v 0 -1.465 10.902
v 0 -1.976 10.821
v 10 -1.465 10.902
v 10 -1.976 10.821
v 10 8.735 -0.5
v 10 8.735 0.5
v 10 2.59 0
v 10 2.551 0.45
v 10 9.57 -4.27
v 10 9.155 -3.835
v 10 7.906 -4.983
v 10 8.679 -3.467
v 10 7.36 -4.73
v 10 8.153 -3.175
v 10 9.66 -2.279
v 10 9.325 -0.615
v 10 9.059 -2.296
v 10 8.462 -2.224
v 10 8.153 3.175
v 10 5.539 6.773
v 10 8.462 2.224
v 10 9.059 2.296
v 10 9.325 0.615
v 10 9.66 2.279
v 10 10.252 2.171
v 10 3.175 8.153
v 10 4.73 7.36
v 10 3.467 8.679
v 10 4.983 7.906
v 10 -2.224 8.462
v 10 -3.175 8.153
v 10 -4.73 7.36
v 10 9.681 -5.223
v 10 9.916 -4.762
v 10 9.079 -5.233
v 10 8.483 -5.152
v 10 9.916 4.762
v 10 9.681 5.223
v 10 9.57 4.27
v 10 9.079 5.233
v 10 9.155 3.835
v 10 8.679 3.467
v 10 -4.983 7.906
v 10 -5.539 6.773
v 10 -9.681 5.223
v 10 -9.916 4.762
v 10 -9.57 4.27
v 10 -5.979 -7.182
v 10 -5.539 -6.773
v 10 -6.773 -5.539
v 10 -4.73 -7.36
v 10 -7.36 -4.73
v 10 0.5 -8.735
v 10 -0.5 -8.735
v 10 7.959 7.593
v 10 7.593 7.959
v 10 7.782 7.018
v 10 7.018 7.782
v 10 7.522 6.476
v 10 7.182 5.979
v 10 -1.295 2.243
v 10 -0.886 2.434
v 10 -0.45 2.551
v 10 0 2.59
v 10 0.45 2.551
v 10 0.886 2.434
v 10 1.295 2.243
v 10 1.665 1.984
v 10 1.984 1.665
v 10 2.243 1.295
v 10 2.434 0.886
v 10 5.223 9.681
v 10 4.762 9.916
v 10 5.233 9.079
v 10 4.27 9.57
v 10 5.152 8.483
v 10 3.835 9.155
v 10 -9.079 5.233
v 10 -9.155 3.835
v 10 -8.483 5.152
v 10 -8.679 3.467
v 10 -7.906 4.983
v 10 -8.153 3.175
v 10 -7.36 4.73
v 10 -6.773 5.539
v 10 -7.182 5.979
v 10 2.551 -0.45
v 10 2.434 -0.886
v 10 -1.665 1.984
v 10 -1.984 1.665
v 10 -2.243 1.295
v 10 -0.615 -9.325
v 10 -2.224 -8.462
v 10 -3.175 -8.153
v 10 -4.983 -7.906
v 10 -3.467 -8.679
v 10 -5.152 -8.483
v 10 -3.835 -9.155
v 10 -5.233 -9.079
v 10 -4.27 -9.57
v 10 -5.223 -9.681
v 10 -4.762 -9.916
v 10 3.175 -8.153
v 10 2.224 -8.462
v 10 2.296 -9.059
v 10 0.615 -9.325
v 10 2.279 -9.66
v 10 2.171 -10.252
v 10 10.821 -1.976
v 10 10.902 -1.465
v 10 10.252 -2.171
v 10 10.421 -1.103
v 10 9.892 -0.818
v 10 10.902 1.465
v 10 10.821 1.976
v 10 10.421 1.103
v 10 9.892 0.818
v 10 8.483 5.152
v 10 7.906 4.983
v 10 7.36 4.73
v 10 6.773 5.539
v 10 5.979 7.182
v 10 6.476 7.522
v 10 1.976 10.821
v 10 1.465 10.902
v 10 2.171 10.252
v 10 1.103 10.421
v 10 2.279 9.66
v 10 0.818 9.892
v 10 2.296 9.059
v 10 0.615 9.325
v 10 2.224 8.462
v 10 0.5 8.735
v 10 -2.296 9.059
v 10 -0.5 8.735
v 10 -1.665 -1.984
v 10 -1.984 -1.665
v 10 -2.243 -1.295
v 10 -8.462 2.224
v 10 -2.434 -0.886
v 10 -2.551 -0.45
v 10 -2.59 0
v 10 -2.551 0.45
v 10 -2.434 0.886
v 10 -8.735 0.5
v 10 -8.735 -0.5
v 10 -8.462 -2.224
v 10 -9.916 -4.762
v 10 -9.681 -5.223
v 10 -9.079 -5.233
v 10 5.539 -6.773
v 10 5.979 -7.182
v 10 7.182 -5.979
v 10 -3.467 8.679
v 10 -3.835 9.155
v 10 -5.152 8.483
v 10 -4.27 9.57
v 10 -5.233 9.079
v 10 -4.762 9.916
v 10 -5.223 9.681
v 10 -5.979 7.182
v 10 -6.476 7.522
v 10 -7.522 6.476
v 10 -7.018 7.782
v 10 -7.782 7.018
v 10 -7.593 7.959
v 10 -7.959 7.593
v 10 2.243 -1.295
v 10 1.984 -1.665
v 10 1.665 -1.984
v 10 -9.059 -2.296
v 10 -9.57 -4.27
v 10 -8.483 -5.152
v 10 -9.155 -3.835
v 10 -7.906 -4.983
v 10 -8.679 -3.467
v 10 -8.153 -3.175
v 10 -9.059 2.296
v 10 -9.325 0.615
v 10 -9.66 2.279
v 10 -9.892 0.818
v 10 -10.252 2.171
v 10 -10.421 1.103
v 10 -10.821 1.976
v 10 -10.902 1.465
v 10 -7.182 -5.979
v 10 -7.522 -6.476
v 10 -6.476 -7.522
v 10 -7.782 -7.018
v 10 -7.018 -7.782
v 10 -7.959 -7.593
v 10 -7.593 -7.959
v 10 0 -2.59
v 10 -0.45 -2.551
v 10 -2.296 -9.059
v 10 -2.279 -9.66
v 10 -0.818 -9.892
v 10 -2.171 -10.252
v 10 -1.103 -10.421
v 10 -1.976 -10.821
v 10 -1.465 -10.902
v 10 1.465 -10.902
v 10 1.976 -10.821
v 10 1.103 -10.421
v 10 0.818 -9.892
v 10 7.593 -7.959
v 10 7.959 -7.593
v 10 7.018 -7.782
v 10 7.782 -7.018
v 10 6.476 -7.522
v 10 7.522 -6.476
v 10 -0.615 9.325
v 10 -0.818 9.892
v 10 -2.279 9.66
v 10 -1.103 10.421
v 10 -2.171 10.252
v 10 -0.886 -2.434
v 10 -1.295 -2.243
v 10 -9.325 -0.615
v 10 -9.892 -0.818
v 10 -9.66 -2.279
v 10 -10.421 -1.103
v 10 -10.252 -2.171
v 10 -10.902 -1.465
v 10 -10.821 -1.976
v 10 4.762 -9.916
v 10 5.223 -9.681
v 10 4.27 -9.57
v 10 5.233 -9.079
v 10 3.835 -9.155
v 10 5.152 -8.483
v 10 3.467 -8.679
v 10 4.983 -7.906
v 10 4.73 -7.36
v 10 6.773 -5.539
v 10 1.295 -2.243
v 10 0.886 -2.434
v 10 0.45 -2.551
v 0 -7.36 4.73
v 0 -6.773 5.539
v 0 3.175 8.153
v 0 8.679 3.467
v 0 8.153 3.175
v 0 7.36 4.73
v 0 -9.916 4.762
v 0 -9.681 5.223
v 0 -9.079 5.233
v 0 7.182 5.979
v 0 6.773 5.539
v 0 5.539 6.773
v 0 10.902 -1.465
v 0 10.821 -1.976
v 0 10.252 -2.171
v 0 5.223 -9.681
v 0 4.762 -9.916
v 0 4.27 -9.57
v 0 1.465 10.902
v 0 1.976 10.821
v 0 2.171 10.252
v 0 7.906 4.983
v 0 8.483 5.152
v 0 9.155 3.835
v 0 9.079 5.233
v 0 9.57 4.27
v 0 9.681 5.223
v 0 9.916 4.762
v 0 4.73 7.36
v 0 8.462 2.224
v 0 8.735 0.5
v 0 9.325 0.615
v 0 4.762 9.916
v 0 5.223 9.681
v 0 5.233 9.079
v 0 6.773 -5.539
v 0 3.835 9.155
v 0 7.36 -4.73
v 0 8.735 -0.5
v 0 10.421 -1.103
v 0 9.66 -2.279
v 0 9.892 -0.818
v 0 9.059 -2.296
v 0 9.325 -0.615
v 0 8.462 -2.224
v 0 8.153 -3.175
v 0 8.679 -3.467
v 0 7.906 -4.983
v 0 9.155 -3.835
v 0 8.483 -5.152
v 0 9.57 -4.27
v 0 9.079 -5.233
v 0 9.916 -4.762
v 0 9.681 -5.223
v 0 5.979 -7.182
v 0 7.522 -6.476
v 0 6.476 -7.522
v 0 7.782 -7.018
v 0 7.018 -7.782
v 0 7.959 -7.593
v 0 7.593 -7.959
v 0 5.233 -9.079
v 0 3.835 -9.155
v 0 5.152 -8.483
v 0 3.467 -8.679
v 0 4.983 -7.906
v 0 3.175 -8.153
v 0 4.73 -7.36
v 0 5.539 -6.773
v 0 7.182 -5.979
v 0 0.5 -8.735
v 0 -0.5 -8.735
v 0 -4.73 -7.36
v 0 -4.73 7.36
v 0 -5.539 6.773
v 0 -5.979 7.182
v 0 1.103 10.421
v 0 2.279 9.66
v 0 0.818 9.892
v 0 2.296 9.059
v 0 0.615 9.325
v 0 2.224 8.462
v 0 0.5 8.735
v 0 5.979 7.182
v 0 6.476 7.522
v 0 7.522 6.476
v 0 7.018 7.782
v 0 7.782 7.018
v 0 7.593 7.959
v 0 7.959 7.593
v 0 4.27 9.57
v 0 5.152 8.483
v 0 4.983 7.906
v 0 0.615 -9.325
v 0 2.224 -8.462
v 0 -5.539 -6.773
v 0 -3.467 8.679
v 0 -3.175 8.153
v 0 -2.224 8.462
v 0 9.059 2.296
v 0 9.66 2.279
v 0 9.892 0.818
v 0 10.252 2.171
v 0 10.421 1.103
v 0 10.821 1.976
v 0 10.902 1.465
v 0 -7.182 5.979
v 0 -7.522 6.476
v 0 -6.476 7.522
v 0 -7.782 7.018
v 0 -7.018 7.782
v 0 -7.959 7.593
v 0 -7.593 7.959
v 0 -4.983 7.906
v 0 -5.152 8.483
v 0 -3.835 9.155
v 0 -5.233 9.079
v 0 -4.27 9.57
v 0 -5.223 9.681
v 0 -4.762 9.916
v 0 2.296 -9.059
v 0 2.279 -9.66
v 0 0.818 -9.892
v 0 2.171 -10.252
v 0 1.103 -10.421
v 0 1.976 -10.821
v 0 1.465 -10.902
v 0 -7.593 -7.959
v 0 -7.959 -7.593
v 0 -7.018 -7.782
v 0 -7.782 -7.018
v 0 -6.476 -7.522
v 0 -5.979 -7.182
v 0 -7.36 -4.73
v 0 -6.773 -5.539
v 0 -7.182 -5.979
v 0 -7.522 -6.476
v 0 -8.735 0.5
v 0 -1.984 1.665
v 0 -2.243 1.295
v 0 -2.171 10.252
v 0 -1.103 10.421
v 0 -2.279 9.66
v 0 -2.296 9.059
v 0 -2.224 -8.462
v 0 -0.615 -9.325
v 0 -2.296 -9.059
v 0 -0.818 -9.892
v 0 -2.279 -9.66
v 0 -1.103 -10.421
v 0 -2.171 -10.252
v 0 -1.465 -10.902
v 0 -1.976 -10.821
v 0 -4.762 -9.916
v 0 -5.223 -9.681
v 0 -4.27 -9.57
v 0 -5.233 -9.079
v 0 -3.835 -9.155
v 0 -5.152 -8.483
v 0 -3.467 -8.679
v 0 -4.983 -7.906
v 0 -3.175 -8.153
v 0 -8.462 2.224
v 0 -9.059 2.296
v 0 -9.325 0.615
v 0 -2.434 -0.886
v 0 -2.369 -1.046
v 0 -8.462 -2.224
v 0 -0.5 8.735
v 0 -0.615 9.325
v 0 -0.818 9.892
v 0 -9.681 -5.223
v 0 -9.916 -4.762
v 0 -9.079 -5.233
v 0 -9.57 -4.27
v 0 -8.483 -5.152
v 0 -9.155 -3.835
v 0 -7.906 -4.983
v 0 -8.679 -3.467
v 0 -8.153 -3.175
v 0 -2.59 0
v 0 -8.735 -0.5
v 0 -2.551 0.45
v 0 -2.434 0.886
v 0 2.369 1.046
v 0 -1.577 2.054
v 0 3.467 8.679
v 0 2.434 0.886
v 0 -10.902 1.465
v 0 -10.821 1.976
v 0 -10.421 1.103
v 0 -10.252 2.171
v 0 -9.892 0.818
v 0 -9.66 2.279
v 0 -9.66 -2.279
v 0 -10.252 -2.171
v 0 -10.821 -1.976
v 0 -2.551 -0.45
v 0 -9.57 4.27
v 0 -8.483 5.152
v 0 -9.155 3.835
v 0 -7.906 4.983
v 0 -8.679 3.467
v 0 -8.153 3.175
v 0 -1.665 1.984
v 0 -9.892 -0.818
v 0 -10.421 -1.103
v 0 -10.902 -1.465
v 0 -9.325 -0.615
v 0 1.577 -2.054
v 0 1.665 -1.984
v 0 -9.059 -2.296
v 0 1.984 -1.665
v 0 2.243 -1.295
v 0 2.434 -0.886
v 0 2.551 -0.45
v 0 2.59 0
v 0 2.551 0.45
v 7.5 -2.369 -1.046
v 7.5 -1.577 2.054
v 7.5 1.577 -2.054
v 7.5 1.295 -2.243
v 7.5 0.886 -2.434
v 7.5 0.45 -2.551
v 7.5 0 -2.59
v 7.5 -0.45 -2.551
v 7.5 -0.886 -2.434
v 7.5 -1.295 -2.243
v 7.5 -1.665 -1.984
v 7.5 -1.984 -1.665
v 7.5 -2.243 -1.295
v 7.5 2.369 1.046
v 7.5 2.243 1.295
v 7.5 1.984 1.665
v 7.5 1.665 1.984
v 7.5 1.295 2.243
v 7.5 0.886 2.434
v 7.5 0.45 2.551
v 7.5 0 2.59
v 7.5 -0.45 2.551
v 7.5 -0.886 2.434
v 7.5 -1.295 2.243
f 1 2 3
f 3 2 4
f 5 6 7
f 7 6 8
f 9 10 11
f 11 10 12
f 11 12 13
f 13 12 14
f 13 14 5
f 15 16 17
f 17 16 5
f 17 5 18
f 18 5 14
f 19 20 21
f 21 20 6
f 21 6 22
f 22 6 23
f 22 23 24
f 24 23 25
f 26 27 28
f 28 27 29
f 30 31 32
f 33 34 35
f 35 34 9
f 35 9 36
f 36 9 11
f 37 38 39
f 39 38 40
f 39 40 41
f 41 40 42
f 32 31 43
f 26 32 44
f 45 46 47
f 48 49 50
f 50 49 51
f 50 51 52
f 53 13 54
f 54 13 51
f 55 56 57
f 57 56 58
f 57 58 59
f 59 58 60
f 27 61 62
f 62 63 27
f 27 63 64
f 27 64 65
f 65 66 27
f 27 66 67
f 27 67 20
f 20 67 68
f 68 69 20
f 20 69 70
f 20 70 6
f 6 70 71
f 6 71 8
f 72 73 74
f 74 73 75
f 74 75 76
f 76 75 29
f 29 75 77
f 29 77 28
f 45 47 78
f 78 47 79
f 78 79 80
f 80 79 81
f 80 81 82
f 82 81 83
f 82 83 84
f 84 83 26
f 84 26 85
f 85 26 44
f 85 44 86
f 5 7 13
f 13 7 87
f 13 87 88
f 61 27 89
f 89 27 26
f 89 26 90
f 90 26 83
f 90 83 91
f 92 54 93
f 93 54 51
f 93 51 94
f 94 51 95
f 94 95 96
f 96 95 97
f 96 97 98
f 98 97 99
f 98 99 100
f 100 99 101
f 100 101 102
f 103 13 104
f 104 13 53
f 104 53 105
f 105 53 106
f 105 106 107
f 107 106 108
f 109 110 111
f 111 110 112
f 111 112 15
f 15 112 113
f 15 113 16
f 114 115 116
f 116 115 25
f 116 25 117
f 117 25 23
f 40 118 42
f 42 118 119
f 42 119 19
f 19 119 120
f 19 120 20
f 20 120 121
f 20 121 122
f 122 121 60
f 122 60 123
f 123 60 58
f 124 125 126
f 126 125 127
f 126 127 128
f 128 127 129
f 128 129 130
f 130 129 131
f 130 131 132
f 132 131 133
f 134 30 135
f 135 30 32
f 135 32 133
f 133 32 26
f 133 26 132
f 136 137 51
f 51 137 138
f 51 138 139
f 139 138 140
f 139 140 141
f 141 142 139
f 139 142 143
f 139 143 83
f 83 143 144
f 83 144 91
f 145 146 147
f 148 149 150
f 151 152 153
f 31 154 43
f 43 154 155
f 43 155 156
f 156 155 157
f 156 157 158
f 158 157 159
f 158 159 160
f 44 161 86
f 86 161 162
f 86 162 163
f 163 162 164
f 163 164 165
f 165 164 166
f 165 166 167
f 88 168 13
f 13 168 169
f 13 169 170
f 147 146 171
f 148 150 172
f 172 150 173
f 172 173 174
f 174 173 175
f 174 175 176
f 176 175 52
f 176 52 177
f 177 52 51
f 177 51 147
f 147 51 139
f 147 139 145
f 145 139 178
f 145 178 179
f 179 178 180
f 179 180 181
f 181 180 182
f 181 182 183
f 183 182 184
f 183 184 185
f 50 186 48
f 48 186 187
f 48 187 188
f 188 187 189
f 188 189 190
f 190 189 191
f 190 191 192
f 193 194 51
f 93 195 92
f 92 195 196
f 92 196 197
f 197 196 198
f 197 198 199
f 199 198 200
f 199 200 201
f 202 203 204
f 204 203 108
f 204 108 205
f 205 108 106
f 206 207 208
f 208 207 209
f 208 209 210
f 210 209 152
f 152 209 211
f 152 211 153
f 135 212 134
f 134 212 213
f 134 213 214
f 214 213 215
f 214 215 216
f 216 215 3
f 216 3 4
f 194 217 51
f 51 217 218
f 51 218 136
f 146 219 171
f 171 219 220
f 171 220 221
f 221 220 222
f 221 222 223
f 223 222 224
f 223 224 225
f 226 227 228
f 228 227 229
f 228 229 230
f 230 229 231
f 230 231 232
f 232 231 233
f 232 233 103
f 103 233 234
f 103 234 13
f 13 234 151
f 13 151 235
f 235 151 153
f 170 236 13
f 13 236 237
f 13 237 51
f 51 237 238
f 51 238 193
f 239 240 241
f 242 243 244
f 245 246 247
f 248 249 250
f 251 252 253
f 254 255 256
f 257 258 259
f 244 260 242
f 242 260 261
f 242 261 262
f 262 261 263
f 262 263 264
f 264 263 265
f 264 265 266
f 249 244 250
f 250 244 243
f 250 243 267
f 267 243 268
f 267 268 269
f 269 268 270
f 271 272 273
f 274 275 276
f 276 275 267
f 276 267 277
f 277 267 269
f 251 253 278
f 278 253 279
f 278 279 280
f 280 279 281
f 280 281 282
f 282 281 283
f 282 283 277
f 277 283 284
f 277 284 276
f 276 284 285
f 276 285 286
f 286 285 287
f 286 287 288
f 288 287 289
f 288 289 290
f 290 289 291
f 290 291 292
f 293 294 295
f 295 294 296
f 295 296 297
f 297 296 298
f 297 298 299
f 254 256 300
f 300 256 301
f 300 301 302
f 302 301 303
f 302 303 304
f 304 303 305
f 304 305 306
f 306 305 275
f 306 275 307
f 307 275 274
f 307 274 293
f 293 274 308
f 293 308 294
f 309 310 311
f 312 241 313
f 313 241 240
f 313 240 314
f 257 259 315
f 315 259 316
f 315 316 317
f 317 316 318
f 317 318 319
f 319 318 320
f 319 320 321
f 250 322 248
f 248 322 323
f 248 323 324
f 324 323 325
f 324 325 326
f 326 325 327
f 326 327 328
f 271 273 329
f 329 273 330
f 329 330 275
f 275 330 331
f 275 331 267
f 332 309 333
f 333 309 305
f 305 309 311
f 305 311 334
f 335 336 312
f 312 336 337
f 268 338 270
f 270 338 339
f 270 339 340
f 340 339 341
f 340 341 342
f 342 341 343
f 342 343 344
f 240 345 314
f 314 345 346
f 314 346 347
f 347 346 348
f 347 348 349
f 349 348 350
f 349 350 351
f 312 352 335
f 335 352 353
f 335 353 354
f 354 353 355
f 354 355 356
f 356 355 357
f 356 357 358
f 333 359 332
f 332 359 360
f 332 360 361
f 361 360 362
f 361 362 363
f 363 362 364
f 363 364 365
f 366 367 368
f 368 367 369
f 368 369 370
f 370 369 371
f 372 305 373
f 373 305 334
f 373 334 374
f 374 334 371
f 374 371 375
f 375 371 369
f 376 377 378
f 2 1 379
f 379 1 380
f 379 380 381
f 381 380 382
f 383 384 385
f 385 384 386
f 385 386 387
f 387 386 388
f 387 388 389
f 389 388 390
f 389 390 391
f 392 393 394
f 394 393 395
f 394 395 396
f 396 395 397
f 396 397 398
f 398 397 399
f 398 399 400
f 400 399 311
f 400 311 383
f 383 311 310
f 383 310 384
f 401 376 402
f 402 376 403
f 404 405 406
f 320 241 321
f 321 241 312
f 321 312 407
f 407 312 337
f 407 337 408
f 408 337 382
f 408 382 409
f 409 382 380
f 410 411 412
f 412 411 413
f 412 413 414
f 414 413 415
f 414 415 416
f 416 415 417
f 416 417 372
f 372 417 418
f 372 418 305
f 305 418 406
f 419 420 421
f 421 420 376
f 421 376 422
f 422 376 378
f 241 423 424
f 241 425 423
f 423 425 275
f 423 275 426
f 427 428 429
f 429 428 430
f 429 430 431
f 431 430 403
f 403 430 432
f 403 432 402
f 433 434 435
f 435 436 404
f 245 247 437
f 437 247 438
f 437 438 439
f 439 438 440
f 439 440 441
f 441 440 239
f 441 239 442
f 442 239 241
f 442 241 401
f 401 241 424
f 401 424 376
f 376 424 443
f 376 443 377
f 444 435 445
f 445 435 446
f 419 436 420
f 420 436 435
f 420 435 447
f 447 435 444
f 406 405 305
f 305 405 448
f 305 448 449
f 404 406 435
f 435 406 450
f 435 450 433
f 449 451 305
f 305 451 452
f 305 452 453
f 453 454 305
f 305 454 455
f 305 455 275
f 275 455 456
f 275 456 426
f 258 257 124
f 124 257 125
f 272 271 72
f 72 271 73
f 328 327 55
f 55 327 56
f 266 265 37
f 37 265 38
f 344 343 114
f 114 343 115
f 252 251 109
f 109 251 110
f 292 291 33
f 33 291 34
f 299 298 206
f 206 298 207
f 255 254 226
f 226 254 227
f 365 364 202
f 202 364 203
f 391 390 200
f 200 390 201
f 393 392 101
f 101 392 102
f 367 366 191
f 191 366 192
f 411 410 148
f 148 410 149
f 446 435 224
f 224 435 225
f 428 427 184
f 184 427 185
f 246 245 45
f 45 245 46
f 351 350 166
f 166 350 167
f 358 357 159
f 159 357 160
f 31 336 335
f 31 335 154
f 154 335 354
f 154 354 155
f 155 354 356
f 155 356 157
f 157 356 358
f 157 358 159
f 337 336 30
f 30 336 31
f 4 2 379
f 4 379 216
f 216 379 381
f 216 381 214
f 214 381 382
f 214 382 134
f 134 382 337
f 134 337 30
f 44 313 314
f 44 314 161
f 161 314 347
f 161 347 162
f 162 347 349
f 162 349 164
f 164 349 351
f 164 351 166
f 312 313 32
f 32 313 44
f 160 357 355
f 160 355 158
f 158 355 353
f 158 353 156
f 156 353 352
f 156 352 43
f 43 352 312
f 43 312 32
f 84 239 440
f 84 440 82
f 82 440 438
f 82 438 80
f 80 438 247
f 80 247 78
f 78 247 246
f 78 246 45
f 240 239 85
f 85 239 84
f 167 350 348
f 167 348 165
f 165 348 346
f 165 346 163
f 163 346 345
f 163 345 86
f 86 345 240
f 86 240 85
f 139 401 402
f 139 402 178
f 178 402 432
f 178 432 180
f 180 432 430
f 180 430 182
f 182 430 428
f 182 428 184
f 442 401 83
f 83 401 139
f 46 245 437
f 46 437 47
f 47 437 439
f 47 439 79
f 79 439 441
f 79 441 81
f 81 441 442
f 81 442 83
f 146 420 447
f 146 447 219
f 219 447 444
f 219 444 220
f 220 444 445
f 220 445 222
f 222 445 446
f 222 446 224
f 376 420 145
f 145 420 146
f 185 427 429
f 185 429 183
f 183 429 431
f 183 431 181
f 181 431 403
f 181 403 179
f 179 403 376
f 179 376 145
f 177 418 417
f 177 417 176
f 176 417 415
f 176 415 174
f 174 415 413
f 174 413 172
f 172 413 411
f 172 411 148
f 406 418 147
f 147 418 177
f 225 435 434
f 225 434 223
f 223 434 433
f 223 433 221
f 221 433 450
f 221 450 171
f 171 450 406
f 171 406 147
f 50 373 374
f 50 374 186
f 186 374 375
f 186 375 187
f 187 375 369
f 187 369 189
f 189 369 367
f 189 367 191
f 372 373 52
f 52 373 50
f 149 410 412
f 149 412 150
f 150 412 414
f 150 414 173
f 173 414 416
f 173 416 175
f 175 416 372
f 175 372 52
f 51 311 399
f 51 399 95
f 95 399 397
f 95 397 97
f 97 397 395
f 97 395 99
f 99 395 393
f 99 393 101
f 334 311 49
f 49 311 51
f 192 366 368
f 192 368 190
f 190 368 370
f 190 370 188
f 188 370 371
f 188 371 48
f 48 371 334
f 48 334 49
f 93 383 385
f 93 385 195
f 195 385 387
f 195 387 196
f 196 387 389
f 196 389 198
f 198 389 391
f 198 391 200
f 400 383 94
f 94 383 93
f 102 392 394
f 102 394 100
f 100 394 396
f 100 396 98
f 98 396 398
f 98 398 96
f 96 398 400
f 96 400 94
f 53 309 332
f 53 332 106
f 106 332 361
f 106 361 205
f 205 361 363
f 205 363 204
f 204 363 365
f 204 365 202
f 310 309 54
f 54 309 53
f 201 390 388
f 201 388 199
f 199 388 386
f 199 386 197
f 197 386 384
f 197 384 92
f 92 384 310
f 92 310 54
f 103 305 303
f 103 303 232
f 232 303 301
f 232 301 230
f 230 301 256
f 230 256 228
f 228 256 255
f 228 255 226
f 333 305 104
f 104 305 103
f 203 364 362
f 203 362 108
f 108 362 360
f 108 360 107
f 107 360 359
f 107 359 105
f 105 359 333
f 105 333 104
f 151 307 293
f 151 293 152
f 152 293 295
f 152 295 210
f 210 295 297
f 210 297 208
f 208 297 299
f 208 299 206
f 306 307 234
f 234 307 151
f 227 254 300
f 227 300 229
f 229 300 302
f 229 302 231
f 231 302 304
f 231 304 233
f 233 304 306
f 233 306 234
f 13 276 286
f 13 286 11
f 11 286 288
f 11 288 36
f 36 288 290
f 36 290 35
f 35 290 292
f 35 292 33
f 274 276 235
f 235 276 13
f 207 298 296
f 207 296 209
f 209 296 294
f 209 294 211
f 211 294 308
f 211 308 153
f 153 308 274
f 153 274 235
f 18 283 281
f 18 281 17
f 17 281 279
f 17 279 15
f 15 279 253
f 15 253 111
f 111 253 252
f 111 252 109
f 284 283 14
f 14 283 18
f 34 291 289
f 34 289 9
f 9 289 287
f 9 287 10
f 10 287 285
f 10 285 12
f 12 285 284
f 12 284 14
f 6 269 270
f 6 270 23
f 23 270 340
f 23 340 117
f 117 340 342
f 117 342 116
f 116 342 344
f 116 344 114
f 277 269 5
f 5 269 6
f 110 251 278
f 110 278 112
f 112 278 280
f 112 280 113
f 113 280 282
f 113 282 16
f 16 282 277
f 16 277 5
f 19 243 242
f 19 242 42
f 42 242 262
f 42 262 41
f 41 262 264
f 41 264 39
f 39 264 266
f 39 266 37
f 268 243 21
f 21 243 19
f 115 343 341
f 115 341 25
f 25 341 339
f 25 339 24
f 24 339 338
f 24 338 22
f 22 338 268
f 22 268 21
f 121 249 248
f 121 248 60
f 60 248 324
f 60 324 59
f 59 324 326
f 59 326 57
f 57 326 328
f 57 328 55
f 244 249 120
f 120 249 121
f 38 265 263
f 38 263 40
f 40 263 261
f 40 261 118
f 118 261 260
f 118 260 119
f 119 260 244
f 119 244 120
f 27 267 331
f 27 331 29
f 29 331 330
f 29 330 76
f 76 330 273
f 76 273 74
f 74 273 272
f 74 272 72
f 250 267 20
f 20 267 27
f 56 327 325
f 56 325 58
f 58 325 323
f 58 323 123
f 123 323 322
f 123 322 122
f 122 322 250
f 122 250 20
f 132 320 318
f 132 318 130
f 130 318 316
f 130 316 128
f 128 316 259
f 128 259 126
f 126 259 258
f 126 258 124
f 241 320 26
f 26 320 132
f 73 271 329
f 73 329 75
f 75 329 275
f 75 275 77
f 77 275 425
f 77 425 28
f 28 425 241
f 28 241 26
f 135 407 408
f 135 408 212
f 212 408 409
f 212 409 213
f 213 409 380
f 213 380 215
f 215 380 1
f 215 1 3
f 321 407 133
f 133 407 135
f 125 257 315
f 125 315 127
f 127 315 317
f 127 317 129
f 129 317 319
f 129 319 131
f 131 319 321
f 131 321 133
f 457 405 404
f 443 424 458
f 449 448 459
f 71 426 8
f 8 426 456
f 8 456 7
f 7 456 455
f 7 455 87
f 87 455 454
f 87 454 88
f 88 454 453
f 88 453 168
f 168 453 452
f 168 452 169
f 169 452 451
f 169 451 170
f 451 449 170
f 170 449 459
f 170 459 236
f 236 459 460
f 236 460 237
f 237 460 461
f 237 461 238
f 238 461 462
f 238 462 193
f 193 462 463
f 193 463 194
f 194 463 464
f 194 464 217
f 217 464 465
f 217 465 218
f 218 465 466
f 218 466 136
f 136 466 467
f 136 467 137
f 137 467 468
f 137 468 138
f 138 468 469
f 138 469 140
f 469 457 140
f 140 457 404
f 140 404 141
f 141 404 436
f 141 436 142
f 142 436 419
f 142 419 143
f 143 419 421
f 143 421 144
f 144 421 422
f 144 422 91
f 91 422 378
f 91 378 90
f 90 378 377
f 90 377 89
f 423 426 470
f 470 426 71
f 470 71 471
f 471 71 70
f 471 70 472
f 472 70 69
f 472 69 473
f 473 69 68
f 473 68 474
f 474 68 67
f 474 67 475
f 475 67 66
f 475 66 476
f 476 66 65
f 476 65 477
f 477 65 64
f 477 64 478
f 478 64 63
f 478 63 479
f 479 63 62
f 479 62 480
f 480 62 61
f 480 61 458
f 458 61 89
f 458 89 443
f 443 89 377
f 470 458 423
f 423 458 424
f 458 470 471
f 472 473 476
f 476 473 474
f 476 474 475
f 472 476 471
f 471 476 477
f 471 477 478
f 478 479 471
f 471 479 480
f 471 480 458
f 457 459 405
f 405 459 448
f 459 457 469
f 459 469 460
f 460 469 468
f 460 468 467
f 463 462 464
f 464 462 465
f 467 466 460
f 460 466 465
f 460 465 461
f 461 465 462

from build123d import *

# Parameters (mm, degrees)
SKETCH1_W           = 10
SKETCH1_H           = 11
CUT_EXTRUDE1_DEPTH  = 11
CUT_EXTRUDE2_DEPTH  = 11
CUT_EXTRUDE3_DEPTH  = 11
CUT_EXTRUDE4_DEPTH  = 11
CUT_EXTRUDE5_DEPTH  = 11
CUT_EXTRUDE6_DEPTH  = 11
CUT_EXTRUDE7_DEPTH  = 11
CUT_EXTRUDE8_DEPTH  = 11
CUT_EXTRUDE9_DEPTH  = 11
CUT_EXTRUDE10_DEPTH = 11
CUT_EXTRUDE11_DEPTH = 11
CUT_EXTRUDE12_DEPTH = 11
CUT_EXTRUDE13_DEPTH = 11
CUT_EXTRUDE14_DEPTH = 11
CUT_EXTRUDE15_DEPTH = 11
CUT_EXTRUDE16_DEPTH = 11
CUT_EXTRUDE17_DEPTH = 11
CUT_EXTRUDE18_DEPTH = 11
CUT_EXTRUDE19_DEPTH = 11
CUT_EXTRUDE20_DEPTH = 11
HOLE1_D             = 5.18
HOLE1_DEPTH         = 10
BOSS_EXTRUDE1_DEPTH = 7.5
BOSS_EXTRUDE2_DEPTH = 7.5


with BuildPart() as part:
    # Sketch1 → Revolve1 (revolve)
    with BuildSketch(Plane(origin=(0, 0, 0), x_dir=(-1, 0, 0), z_dir=(0, 0, -1))):
        with Locations((-5, 5.5)):
            Rectangle(SKETCH1_W, SKETCH1_H)
    revolve(axis=Axis((10, 0, 0), (-1, 0, 0)))

    # Sketch2 → Cut-Extrude1 (cut, through all)
    with BuildSketch(Plane.ZY):
        with BuildLine():
            ThreePointArc((10.821127601, -1.975651141), (9.66022001, -2.278635697), (8.461683425, -2.223716399))
            ThreePointArc((8.461683425, -2.223716399), (8.320793461, -2.703589684), (8.152713396, -3.174628369))
            ThreePointArc((8.152713396, -3.174628369), (9.154630615, -3.834679853), (9.915734733, -4.762163869))
            ThreePointArc((9.915734733, -4.762163869), (10.461621679, -3.399186938), (10.821127601, -1.975651141))
        make_face()
    extrude(amount=-CUT_EXTRUDE1_DEPTH, mode=Mode.SUBTRACT)

    # Sketch3 → Cut-Extrude2 (cut, through all)
    with BuildSketch(Plane.ZY):
        with BuildLine():
            ThreePointArc((9.680994141, -5.222868219), (8.483278035, -5.15228348), (7.360373002, -4.729683951))
            ThreePointArc((7.360373002, -4.729683951), (7.078089684, -5.142533172), (6.772677084, -5.538577987))
            ThreePointArc((6.772677084, -5.538577987), (7.521589858, -6.4759337), (7.958834566, -7.593217523))
            ThreePointArc((7.958834566, -7.593217523), (8.899186938, -6.465637775), (9.680994141, -5.222868219))
        make_face()
    extrude(amount=-CUT_EXTRUDE2_DEPTH, mode=Mode.SUBTRACT)

    # Sketch4 → Cut-Extrude3 (cut, through all)
    with BuildSketch(Plane.ZY):
        with BuildLine():
            ThreePointArc((5.222868219, -9.680994141), (6.465637775, -8.899186938), (7.593217523, -7.958834566))
            ThreePointArc((7.593217523, -7.958834566), (6.4759337, -7.521589858), (5.538577987, -6.772677084))
            ThreePointArc((5.538577987, -6.772677084), (5.142533172, -7.078089684), (4.729683951, -7.360373002))
            ThreePointArc((4.729683951, -7.360373002), (5.15228348, -8.483278035), (5.222868219, -9.680994141))
        make_face()
    extrude(amount=-CUT_EXTRUDE3_DEPTH, mode=Mode.SUBTRACT)

    # Sketch5 → Cut-Extrude4 (cut, through all)
    with BuildSketch(Plane.ZY):
        with BuildLine():
            ThreePointArc((1.975651141, -10.821127601), (3.399186938, -10.461621679), (4.762163869, -9.915734733))
            ThreePointArc((4.762163869, -9.915734733), (3.834679853, -9.154630615), (3.174628369, -8.152713396))
            ThreePointArc((3.174628369, -8.152713396), (2.703589684, -8.320793461), (2.223716399, -8.461683425))
            ThreePointArc((2.223716399, -8.461683425), (2.278635697, -9.66022001), (1.975651141, -10.821127601))
        make_face()
    extrude(amount=-CUT_EXTRUDE4_DEPTH, mode=Mode.SUBTRACT)

    # Sketch6 → Cut-Extrude5 (cut, through all)
    with BuildSketch(Plane.ZY):
        with BuildLine():
            ThreePointArc((1.464956435, -10.902013697), (0.818060825, -9.891552344), (0.499924007, -8.734705318))
            ThreePointArc((0.499924007, -8.734705318), (0, -8.749), (-0.499924007, -8.734705318))
            ThreePointArc((-0.499924007, -8.734705318), (-0.818060825, -9.891552344), (-1.464956435, -10.902013697))
            ThreePointArc((-1.464956435, -10.902013697), (0, -11), (1.464956435, -10.902013697))
        make_face()
    extrude(amount=-CUT_EXTRUDE5_DEPTH, mode=Mode.SUBTRACT)

    # Sketch7 → Cut-Extrude6 (cut, through all)
    with BuildSketch(Plane.ZY):
        with BuildLine():
            ThreePointArc((-1.975651141, -10.821127601), (-2.278635697, -9.66022001), (-2.223716399, -8.461683425))
            ThreePointArc((-2.223716399, -8.461683425), (-2.703589684, -8.320793461), (-3.174628369, -8.152713396))
            ThreePointArc((-3.174628369, -8.152713396), (-3.834679853, -9.154630615), (-4.762163869, -9.915734733))
            ThreePointArc((-4.762163869, -9.915734733), (-3.399186938, -10.461621679), (-1.975651141, -10.821127601))
        make_face()
    extrude(amount=-CUT_EXTRUDE6_DEPTH, mode=Mode.SUBTRACT)

    # Sketch8 → Cut-Extrude7 (cut, through all)
    with BuildSketch(Plane.ZY):
        with BuildLine():
            ThreePointArc((-5.222868219, -9.680994141), (-5.15228348, -8.483278035), (-4.729683951, -7.360373002))
            ThreePointArc((-4.729683951, -7.360373002), (-5.142533172, -7.078089684), (-5.538577987, -6.772677084))
            ThreePointArc((-5.538577987, -6.772677084), (-6.4759337, -7.521589858), (-7.593217523, -7.958834566))
            ThreePointArc((-7.593217523, -7.958834566), (-6.465637775, -8.899186938), (-5.222868219, -9.680994141))
        make_face()
    extrude(amount=-CUT_EXTRUDE7_DEPTH, mode=Mode.SUBTRACT)

    # Sketch9 → Cut-Extrude8 (cut, through all)
    with BuildSketch(Plane.ZY):
        with BuildLine():
            ThreePointArc((-7.958834566, -7.593217523), (-7.521589858, -6.4759337), (-6.772677084, -5.538577987))
            ThreePointArc((-6.772677084, -5.538577987), (-7.078089684, -5.142533172), (-7.360373002, -4.729683951))
            ThreePointArc((-7.360373002, -4.729683951), (-8.483278035, -5.15228348), (-9.680994141, -5.222868219))
            ThreePointArc((-9.680994141, -5.222868219), (-8.899186938, -6.465637775), (-7.958834566, -7.593217523))
        make_face()
    extrude(amount=-CUT_EXTRUDE8_DEPTH, mode=Mode.SUBTRACT)

    # Sketch10 → Cut-Extrude9 (cut, through all)
    with BuildSketch(Plane.ZY):
        with BuildLine():
            ThreePointArc((-9.915734733, -4.762163869), (-9.154630615, -3.834679853), (-8.152713396, -3.174628369))
            ThreePointArc((-8.152713396, -3.174628369), (-8.320793461, -2.703589684), (-8.461683425, -2.223716399))
            ThreePointArc((-8.461683425, -2.223716399), (-9.66022001, -2.278635697), (-10.821127601, -1.975651141))
            ThreePointArc((-10.821127601, -1.975651141), (-10.461621679, -3.399186938), (-9.915734733, -4.762163869))
        make_face()
    extrude(amount=-CUT_EXTRUDE9_DEPTH, mode=Mode.SUBTRACT)

    # Sketch11 → Cut-Extrude10 (cut, through all)
    with BuildSketch(Plane.ZY):
        with BuildLine():
            ThreePointArc((-10.902013697, -1.464956435), (-9.891552344, -0.818060825), (-8.734705318, -0.499924007))
            ThreePointArc((-8.734705318, -0.499924007), (-8.749, 0), (-8.734705318, 0.499924007))
            ThreePointArc((-8.734705318, 0.499924007), (-9.891552344, 0.818060825), (-10.902013697, 1.464956435))
            ThreePointArc((-10.902013697, 1.464956435), (-11, 0), (-10.902013697, -1.464956435))
        make_face()
    extrude(amount=-CUT_EXTRUDE10_DEPTH, mode=Mode.SUBTRACT)

    # Sketch12 → Cut-Extrude11 (cut, through all)
    with BuildSketch(Plane.ZY):
        with BuildLine():
            ThreePointArc((-10.821127601, 1.975651141), (-9.66022001, 2.278635697), (-8.461683425, 2.223716399))
            ThreePointArc((-8.461683425, 2.223716399), (-8.320793461, 2.703589684), (-8.152713396, 3.174628369))
            ThreePointArc((-8.152713396, 3.174628369), (-9.154630615, 3.834679853), (-9.915734733, 4.762163869))
            ThreePointArc((-9.915734733, 4.762163869), (-10.461621679, 3.399186938), (-10.821127601, 1.975651141))
        make_face()
    extrude(amount=-CUT_EXTRUDE11_DEPTH, mode=Mode.SUBTRACT)

    # Sketch13 → Cut-Extrude12 (cut, through all)
    with BuildSketch(Plane.ZY):
        with BuildLine():
            ThreePointArc((-9.680994141, 5.222868219), (-8.483278035, 5.15228348), (-7.360373002, 4.729683951))
            ThreePointArc((-7.360373002, 4.729683951), (-7.078089684, 5.142533172), (-6.772677084, 5.538577987))
            ThreePointArc((-6.772677084, 5.538577987), (-7.521589858, 6.4759337), (-7.958834566, 7.593217523))
            ThreePointArc((-7.958834566, 7.593217523), (-8.899186938, 6.465637775), (-9.680994141, 5.222868219))
        make_face()
    extrude(amount=-CUT_EXTRUDE12_DEPTH, mode=Mode.SUBTRACT)

    # Sketch14 → Cut-Extrude13 (cut, through all)
    with BuildSketch(Plane.ZY):
        with BuildLine():
            ThreePointArc((-7.593217523, 7.958834566), (-6.4759337, 7.521589858), (-5.538577987, 6.772677084))
            ThreePointArc((-5.538577987, 6.772677084), (-5.142533172, 7.078089684), (-4.729683951, 7.360373002))
            ThreePointArc((-4.729683951, 7.360373002), (-5.15228348, 8.483278035), (-5.222868219, 9.680994141))
            ThreePointArc((-5.222868219, 9.680994141), (-6.465637775, 8.899186938), (-7.593217523, 7.958834566))
        make_face()
    extrude(amount=-CUT_EXTRUDE13_DEPTH, mode=Mode.SUBTRACT)

    # Sketch15 → Cut-Extrude14 (cut, through all)
    with BuildSketch(Plane.ZY):
        with BuildLine():
            ThreePointArc((-4.762163869, 9.915734733), (-3.834679853, 9.154630615), (-3.174628369, 8.152713396))
            ThreePointArc((-3.174628369, 8.152713396), (-2.703589684, 8.320793461), (-2.223716399, 8.461683425))
            ThreePointArc((-2.223716399, 8.461683425), (-2.278635697, 9.66022001), (-1.975651141, 10.821127601))
            ThreePointArc((-1.975651141, 10.821127601), (-3.399186938, 10.461621679), (-4.762163869, 9.915734733))
        make_face()
    extrude(amount=-CUT_EXTRUDE14_DEPTH, mode=Mode.SUBTRACT)

    # Sketch16 → Cut-Extrude15 (cut, through all)
    with BuildSketch(Plane.ZY):
        with BuildLine():
            ThreePointArc((-1.464956435, 10.902013697), (-0.818060825, 9.891552344), (-0.499924007, 8.734705318))
            ThreePointArc((-0.499924007, 8.734705318), (0, 8.749), (0.499924007, 8.734705318))
            ThreePointArc((0.499924007, 8.734705318), (0.818060825, 9.891552344), (1.464956435, 10.902013697))
            ThreePointArc((1.464956435, 10.902013697), (0, 11), (-1.464956435, 10.902013697))
        make_face()
    extrude(amount=-CUT_EXTRUDE15_DEPTH, mode=Mode.SUBTRACT)

    # Sketch17 → Cut-Extrude16 (cut, through all)
    with BuildSketch(Plane.ZY):
        with BuildLine():
            ThreePointArc((1.975651141, 10.821127601), (2.278635697, 9.66022001), (2.223716399, 8.461683425))
            ThreePointArc((2.223716399, 8.461683425), (2.703589684, 8.320793461), (3.174628369, 8.152713396))
            ThreePointArc((3.174628369, 8.152713396), (3.834679853, 9.154630615), (4.762163869, 9.915734733))
            ThreePointArc((4.762163869, 9.915734733), (3.399186938, 10.461621679), (1.975651141, 10.821127601))
        make_face()
    extrude(amount=-CUT_EXTRUDE16_DEPTH, mode=Mode.SUBTRACT)

    # Sketch18 → Cut-Extrude17 (cut, through all)
    with BuildSketch(Plane.ZY):
        with BuildLine():
            ThreePointArc((5.222868219, 9.680994141), (5.15228348, 8.483278035), (4.729683951, 7.360373002))
            ThreePointArc((4.729683951, 7.360373002), (5.142533172, 7.078089684), (5.538577987, 6.772677084))
            ThreePointArc((5.538577987, 6.772677084), (6.4759337, 7.521589858), (7.593217523, 7.958834566))
            ThreePointArc((7.593217523, 7.958834566), (6.465637775, 8.899186938), (5.222868219, 9.680994141))
        make_face()
    extrude(amount=-CUT_EXTRUDE17_DEPTH, mode=Mode.SUBTRACT)

    # Sketch19 → Cut-Extrude18 (cut, through all)
    with BuildSketch(Plane.ZY):
        with BuildLine():
            ThreePointArc((7.958834566, 7.593217523), (7.521589858, 6.4759337), (6.772677084, 5.538577987))
            ThreePointArc((6.772677084, 5.538577987), (7.078089684, 5.142533172), (7.360373002, 4.729683951))
            ThreePointArc((7.360373002, 4.729683951), (8.483278035, 5.15228348), (9.680994141, 5.222868219))
            ThreePointArc((9.680994141, 5.222868219), (8.899186938, 6.465637775), (7.958834566, 7.593217523))
        make_face()
    extrude(amount=-CUT_EXTRUDE18_DEPTH, mode=Mode.SUBTRACT)

    # Sketch20 → Cut-Extrude19 (cut, through all)
    with BuildSketch(Plane.ZY):
        with BuildLine():
            ThreePointArc((9.915734733, 4.762163869), (9.154630615, 3.834679853), (8.152713396, 3.174628369))
            ThreePointArc((8.152713396, 3.174628369), (8.320793461, 2.703589684), (8.461683425, 2.223716399))
            ThreePointArc((8.461683425, 2.223716399), (9.66022001, 2.278635697), (10.821127601, 1.975651141))
            ThreePointArc((10.821127601, 1.975651141), (10.461621679, 3.399186938), (9.915734733, 4.762163869))
        make_face()
    extrude(amount=-CUT_EXTRUDE19_DEPTH, mode=Mode.SUBTRACT)

    # Sketch21 → Cut-Extrude20 (cut, through all)
    with BuildSketch(Plane.ZY):
        with BuildLine():
            ThreePointArc((10.902013697, 1.464956435), (9.891552344, 0.818060825), (8.734705318, 0.499924007))
            ThreePointArc((8.734705318, 0.499924007), (8.749, 0), (8.734705318, -0.499924007))
            ThreePointArc((8.734705318, -0.499924007), (9.891552344, -0.818060825), (10.902013697, -1.464956435))
            ThreePointArc((10.902013697, -1.464956435), (11, 0), (10.902013697, 1.464956435))
        make_face()
    extrude(amount=-CUT_EXTRUDE20_DEPTH, mode=Mode.SUBTRACT)

    # Hole1
    with Locations(Plane.ZY):
        with Locations((0, 0)):
            Hole(HOLE1_D / 2, depth=HOLE1_DEPTH)

    # Sketch24 → Boss-Extrude1 (add)
    with BuildSketch(Plane(origin=(0, 0, 0), x_dir=(0, -1, 0), z_dir=(-1, 0, 0))):
        with BuildLine():
            Line((-2.369432427, 1.045891951), (1.577107549, 2.054466301))
            ThreePointArc((1.577107549, 2.054466301), (-0.641287949, 2.50935246), (-2.369432427, 1.045891951))
        make_face()
    extrude(amount=-BOSS_EXTRUDE1_DEPTH)

    # Sketch25 → Boss-Extrude2 (add)
    with BuildSketch(Plane(origin=(0, 0, 0), x_dir=(0, -1, 0), z_dir=(-1, 0, 0))):
        with BuildLine():
            Line((2.369432427, -1.045891951), (-1.577107549, -2.054466301))
            ThreePointArc((-1.577107549, -2.054466301), (0.641287949, -2.50935246), (2.369432427, -1.045891951))
        make_face()
    extrude(amount=-BOSS_EXTRUDE2_DEPTH)


solid = part.part
